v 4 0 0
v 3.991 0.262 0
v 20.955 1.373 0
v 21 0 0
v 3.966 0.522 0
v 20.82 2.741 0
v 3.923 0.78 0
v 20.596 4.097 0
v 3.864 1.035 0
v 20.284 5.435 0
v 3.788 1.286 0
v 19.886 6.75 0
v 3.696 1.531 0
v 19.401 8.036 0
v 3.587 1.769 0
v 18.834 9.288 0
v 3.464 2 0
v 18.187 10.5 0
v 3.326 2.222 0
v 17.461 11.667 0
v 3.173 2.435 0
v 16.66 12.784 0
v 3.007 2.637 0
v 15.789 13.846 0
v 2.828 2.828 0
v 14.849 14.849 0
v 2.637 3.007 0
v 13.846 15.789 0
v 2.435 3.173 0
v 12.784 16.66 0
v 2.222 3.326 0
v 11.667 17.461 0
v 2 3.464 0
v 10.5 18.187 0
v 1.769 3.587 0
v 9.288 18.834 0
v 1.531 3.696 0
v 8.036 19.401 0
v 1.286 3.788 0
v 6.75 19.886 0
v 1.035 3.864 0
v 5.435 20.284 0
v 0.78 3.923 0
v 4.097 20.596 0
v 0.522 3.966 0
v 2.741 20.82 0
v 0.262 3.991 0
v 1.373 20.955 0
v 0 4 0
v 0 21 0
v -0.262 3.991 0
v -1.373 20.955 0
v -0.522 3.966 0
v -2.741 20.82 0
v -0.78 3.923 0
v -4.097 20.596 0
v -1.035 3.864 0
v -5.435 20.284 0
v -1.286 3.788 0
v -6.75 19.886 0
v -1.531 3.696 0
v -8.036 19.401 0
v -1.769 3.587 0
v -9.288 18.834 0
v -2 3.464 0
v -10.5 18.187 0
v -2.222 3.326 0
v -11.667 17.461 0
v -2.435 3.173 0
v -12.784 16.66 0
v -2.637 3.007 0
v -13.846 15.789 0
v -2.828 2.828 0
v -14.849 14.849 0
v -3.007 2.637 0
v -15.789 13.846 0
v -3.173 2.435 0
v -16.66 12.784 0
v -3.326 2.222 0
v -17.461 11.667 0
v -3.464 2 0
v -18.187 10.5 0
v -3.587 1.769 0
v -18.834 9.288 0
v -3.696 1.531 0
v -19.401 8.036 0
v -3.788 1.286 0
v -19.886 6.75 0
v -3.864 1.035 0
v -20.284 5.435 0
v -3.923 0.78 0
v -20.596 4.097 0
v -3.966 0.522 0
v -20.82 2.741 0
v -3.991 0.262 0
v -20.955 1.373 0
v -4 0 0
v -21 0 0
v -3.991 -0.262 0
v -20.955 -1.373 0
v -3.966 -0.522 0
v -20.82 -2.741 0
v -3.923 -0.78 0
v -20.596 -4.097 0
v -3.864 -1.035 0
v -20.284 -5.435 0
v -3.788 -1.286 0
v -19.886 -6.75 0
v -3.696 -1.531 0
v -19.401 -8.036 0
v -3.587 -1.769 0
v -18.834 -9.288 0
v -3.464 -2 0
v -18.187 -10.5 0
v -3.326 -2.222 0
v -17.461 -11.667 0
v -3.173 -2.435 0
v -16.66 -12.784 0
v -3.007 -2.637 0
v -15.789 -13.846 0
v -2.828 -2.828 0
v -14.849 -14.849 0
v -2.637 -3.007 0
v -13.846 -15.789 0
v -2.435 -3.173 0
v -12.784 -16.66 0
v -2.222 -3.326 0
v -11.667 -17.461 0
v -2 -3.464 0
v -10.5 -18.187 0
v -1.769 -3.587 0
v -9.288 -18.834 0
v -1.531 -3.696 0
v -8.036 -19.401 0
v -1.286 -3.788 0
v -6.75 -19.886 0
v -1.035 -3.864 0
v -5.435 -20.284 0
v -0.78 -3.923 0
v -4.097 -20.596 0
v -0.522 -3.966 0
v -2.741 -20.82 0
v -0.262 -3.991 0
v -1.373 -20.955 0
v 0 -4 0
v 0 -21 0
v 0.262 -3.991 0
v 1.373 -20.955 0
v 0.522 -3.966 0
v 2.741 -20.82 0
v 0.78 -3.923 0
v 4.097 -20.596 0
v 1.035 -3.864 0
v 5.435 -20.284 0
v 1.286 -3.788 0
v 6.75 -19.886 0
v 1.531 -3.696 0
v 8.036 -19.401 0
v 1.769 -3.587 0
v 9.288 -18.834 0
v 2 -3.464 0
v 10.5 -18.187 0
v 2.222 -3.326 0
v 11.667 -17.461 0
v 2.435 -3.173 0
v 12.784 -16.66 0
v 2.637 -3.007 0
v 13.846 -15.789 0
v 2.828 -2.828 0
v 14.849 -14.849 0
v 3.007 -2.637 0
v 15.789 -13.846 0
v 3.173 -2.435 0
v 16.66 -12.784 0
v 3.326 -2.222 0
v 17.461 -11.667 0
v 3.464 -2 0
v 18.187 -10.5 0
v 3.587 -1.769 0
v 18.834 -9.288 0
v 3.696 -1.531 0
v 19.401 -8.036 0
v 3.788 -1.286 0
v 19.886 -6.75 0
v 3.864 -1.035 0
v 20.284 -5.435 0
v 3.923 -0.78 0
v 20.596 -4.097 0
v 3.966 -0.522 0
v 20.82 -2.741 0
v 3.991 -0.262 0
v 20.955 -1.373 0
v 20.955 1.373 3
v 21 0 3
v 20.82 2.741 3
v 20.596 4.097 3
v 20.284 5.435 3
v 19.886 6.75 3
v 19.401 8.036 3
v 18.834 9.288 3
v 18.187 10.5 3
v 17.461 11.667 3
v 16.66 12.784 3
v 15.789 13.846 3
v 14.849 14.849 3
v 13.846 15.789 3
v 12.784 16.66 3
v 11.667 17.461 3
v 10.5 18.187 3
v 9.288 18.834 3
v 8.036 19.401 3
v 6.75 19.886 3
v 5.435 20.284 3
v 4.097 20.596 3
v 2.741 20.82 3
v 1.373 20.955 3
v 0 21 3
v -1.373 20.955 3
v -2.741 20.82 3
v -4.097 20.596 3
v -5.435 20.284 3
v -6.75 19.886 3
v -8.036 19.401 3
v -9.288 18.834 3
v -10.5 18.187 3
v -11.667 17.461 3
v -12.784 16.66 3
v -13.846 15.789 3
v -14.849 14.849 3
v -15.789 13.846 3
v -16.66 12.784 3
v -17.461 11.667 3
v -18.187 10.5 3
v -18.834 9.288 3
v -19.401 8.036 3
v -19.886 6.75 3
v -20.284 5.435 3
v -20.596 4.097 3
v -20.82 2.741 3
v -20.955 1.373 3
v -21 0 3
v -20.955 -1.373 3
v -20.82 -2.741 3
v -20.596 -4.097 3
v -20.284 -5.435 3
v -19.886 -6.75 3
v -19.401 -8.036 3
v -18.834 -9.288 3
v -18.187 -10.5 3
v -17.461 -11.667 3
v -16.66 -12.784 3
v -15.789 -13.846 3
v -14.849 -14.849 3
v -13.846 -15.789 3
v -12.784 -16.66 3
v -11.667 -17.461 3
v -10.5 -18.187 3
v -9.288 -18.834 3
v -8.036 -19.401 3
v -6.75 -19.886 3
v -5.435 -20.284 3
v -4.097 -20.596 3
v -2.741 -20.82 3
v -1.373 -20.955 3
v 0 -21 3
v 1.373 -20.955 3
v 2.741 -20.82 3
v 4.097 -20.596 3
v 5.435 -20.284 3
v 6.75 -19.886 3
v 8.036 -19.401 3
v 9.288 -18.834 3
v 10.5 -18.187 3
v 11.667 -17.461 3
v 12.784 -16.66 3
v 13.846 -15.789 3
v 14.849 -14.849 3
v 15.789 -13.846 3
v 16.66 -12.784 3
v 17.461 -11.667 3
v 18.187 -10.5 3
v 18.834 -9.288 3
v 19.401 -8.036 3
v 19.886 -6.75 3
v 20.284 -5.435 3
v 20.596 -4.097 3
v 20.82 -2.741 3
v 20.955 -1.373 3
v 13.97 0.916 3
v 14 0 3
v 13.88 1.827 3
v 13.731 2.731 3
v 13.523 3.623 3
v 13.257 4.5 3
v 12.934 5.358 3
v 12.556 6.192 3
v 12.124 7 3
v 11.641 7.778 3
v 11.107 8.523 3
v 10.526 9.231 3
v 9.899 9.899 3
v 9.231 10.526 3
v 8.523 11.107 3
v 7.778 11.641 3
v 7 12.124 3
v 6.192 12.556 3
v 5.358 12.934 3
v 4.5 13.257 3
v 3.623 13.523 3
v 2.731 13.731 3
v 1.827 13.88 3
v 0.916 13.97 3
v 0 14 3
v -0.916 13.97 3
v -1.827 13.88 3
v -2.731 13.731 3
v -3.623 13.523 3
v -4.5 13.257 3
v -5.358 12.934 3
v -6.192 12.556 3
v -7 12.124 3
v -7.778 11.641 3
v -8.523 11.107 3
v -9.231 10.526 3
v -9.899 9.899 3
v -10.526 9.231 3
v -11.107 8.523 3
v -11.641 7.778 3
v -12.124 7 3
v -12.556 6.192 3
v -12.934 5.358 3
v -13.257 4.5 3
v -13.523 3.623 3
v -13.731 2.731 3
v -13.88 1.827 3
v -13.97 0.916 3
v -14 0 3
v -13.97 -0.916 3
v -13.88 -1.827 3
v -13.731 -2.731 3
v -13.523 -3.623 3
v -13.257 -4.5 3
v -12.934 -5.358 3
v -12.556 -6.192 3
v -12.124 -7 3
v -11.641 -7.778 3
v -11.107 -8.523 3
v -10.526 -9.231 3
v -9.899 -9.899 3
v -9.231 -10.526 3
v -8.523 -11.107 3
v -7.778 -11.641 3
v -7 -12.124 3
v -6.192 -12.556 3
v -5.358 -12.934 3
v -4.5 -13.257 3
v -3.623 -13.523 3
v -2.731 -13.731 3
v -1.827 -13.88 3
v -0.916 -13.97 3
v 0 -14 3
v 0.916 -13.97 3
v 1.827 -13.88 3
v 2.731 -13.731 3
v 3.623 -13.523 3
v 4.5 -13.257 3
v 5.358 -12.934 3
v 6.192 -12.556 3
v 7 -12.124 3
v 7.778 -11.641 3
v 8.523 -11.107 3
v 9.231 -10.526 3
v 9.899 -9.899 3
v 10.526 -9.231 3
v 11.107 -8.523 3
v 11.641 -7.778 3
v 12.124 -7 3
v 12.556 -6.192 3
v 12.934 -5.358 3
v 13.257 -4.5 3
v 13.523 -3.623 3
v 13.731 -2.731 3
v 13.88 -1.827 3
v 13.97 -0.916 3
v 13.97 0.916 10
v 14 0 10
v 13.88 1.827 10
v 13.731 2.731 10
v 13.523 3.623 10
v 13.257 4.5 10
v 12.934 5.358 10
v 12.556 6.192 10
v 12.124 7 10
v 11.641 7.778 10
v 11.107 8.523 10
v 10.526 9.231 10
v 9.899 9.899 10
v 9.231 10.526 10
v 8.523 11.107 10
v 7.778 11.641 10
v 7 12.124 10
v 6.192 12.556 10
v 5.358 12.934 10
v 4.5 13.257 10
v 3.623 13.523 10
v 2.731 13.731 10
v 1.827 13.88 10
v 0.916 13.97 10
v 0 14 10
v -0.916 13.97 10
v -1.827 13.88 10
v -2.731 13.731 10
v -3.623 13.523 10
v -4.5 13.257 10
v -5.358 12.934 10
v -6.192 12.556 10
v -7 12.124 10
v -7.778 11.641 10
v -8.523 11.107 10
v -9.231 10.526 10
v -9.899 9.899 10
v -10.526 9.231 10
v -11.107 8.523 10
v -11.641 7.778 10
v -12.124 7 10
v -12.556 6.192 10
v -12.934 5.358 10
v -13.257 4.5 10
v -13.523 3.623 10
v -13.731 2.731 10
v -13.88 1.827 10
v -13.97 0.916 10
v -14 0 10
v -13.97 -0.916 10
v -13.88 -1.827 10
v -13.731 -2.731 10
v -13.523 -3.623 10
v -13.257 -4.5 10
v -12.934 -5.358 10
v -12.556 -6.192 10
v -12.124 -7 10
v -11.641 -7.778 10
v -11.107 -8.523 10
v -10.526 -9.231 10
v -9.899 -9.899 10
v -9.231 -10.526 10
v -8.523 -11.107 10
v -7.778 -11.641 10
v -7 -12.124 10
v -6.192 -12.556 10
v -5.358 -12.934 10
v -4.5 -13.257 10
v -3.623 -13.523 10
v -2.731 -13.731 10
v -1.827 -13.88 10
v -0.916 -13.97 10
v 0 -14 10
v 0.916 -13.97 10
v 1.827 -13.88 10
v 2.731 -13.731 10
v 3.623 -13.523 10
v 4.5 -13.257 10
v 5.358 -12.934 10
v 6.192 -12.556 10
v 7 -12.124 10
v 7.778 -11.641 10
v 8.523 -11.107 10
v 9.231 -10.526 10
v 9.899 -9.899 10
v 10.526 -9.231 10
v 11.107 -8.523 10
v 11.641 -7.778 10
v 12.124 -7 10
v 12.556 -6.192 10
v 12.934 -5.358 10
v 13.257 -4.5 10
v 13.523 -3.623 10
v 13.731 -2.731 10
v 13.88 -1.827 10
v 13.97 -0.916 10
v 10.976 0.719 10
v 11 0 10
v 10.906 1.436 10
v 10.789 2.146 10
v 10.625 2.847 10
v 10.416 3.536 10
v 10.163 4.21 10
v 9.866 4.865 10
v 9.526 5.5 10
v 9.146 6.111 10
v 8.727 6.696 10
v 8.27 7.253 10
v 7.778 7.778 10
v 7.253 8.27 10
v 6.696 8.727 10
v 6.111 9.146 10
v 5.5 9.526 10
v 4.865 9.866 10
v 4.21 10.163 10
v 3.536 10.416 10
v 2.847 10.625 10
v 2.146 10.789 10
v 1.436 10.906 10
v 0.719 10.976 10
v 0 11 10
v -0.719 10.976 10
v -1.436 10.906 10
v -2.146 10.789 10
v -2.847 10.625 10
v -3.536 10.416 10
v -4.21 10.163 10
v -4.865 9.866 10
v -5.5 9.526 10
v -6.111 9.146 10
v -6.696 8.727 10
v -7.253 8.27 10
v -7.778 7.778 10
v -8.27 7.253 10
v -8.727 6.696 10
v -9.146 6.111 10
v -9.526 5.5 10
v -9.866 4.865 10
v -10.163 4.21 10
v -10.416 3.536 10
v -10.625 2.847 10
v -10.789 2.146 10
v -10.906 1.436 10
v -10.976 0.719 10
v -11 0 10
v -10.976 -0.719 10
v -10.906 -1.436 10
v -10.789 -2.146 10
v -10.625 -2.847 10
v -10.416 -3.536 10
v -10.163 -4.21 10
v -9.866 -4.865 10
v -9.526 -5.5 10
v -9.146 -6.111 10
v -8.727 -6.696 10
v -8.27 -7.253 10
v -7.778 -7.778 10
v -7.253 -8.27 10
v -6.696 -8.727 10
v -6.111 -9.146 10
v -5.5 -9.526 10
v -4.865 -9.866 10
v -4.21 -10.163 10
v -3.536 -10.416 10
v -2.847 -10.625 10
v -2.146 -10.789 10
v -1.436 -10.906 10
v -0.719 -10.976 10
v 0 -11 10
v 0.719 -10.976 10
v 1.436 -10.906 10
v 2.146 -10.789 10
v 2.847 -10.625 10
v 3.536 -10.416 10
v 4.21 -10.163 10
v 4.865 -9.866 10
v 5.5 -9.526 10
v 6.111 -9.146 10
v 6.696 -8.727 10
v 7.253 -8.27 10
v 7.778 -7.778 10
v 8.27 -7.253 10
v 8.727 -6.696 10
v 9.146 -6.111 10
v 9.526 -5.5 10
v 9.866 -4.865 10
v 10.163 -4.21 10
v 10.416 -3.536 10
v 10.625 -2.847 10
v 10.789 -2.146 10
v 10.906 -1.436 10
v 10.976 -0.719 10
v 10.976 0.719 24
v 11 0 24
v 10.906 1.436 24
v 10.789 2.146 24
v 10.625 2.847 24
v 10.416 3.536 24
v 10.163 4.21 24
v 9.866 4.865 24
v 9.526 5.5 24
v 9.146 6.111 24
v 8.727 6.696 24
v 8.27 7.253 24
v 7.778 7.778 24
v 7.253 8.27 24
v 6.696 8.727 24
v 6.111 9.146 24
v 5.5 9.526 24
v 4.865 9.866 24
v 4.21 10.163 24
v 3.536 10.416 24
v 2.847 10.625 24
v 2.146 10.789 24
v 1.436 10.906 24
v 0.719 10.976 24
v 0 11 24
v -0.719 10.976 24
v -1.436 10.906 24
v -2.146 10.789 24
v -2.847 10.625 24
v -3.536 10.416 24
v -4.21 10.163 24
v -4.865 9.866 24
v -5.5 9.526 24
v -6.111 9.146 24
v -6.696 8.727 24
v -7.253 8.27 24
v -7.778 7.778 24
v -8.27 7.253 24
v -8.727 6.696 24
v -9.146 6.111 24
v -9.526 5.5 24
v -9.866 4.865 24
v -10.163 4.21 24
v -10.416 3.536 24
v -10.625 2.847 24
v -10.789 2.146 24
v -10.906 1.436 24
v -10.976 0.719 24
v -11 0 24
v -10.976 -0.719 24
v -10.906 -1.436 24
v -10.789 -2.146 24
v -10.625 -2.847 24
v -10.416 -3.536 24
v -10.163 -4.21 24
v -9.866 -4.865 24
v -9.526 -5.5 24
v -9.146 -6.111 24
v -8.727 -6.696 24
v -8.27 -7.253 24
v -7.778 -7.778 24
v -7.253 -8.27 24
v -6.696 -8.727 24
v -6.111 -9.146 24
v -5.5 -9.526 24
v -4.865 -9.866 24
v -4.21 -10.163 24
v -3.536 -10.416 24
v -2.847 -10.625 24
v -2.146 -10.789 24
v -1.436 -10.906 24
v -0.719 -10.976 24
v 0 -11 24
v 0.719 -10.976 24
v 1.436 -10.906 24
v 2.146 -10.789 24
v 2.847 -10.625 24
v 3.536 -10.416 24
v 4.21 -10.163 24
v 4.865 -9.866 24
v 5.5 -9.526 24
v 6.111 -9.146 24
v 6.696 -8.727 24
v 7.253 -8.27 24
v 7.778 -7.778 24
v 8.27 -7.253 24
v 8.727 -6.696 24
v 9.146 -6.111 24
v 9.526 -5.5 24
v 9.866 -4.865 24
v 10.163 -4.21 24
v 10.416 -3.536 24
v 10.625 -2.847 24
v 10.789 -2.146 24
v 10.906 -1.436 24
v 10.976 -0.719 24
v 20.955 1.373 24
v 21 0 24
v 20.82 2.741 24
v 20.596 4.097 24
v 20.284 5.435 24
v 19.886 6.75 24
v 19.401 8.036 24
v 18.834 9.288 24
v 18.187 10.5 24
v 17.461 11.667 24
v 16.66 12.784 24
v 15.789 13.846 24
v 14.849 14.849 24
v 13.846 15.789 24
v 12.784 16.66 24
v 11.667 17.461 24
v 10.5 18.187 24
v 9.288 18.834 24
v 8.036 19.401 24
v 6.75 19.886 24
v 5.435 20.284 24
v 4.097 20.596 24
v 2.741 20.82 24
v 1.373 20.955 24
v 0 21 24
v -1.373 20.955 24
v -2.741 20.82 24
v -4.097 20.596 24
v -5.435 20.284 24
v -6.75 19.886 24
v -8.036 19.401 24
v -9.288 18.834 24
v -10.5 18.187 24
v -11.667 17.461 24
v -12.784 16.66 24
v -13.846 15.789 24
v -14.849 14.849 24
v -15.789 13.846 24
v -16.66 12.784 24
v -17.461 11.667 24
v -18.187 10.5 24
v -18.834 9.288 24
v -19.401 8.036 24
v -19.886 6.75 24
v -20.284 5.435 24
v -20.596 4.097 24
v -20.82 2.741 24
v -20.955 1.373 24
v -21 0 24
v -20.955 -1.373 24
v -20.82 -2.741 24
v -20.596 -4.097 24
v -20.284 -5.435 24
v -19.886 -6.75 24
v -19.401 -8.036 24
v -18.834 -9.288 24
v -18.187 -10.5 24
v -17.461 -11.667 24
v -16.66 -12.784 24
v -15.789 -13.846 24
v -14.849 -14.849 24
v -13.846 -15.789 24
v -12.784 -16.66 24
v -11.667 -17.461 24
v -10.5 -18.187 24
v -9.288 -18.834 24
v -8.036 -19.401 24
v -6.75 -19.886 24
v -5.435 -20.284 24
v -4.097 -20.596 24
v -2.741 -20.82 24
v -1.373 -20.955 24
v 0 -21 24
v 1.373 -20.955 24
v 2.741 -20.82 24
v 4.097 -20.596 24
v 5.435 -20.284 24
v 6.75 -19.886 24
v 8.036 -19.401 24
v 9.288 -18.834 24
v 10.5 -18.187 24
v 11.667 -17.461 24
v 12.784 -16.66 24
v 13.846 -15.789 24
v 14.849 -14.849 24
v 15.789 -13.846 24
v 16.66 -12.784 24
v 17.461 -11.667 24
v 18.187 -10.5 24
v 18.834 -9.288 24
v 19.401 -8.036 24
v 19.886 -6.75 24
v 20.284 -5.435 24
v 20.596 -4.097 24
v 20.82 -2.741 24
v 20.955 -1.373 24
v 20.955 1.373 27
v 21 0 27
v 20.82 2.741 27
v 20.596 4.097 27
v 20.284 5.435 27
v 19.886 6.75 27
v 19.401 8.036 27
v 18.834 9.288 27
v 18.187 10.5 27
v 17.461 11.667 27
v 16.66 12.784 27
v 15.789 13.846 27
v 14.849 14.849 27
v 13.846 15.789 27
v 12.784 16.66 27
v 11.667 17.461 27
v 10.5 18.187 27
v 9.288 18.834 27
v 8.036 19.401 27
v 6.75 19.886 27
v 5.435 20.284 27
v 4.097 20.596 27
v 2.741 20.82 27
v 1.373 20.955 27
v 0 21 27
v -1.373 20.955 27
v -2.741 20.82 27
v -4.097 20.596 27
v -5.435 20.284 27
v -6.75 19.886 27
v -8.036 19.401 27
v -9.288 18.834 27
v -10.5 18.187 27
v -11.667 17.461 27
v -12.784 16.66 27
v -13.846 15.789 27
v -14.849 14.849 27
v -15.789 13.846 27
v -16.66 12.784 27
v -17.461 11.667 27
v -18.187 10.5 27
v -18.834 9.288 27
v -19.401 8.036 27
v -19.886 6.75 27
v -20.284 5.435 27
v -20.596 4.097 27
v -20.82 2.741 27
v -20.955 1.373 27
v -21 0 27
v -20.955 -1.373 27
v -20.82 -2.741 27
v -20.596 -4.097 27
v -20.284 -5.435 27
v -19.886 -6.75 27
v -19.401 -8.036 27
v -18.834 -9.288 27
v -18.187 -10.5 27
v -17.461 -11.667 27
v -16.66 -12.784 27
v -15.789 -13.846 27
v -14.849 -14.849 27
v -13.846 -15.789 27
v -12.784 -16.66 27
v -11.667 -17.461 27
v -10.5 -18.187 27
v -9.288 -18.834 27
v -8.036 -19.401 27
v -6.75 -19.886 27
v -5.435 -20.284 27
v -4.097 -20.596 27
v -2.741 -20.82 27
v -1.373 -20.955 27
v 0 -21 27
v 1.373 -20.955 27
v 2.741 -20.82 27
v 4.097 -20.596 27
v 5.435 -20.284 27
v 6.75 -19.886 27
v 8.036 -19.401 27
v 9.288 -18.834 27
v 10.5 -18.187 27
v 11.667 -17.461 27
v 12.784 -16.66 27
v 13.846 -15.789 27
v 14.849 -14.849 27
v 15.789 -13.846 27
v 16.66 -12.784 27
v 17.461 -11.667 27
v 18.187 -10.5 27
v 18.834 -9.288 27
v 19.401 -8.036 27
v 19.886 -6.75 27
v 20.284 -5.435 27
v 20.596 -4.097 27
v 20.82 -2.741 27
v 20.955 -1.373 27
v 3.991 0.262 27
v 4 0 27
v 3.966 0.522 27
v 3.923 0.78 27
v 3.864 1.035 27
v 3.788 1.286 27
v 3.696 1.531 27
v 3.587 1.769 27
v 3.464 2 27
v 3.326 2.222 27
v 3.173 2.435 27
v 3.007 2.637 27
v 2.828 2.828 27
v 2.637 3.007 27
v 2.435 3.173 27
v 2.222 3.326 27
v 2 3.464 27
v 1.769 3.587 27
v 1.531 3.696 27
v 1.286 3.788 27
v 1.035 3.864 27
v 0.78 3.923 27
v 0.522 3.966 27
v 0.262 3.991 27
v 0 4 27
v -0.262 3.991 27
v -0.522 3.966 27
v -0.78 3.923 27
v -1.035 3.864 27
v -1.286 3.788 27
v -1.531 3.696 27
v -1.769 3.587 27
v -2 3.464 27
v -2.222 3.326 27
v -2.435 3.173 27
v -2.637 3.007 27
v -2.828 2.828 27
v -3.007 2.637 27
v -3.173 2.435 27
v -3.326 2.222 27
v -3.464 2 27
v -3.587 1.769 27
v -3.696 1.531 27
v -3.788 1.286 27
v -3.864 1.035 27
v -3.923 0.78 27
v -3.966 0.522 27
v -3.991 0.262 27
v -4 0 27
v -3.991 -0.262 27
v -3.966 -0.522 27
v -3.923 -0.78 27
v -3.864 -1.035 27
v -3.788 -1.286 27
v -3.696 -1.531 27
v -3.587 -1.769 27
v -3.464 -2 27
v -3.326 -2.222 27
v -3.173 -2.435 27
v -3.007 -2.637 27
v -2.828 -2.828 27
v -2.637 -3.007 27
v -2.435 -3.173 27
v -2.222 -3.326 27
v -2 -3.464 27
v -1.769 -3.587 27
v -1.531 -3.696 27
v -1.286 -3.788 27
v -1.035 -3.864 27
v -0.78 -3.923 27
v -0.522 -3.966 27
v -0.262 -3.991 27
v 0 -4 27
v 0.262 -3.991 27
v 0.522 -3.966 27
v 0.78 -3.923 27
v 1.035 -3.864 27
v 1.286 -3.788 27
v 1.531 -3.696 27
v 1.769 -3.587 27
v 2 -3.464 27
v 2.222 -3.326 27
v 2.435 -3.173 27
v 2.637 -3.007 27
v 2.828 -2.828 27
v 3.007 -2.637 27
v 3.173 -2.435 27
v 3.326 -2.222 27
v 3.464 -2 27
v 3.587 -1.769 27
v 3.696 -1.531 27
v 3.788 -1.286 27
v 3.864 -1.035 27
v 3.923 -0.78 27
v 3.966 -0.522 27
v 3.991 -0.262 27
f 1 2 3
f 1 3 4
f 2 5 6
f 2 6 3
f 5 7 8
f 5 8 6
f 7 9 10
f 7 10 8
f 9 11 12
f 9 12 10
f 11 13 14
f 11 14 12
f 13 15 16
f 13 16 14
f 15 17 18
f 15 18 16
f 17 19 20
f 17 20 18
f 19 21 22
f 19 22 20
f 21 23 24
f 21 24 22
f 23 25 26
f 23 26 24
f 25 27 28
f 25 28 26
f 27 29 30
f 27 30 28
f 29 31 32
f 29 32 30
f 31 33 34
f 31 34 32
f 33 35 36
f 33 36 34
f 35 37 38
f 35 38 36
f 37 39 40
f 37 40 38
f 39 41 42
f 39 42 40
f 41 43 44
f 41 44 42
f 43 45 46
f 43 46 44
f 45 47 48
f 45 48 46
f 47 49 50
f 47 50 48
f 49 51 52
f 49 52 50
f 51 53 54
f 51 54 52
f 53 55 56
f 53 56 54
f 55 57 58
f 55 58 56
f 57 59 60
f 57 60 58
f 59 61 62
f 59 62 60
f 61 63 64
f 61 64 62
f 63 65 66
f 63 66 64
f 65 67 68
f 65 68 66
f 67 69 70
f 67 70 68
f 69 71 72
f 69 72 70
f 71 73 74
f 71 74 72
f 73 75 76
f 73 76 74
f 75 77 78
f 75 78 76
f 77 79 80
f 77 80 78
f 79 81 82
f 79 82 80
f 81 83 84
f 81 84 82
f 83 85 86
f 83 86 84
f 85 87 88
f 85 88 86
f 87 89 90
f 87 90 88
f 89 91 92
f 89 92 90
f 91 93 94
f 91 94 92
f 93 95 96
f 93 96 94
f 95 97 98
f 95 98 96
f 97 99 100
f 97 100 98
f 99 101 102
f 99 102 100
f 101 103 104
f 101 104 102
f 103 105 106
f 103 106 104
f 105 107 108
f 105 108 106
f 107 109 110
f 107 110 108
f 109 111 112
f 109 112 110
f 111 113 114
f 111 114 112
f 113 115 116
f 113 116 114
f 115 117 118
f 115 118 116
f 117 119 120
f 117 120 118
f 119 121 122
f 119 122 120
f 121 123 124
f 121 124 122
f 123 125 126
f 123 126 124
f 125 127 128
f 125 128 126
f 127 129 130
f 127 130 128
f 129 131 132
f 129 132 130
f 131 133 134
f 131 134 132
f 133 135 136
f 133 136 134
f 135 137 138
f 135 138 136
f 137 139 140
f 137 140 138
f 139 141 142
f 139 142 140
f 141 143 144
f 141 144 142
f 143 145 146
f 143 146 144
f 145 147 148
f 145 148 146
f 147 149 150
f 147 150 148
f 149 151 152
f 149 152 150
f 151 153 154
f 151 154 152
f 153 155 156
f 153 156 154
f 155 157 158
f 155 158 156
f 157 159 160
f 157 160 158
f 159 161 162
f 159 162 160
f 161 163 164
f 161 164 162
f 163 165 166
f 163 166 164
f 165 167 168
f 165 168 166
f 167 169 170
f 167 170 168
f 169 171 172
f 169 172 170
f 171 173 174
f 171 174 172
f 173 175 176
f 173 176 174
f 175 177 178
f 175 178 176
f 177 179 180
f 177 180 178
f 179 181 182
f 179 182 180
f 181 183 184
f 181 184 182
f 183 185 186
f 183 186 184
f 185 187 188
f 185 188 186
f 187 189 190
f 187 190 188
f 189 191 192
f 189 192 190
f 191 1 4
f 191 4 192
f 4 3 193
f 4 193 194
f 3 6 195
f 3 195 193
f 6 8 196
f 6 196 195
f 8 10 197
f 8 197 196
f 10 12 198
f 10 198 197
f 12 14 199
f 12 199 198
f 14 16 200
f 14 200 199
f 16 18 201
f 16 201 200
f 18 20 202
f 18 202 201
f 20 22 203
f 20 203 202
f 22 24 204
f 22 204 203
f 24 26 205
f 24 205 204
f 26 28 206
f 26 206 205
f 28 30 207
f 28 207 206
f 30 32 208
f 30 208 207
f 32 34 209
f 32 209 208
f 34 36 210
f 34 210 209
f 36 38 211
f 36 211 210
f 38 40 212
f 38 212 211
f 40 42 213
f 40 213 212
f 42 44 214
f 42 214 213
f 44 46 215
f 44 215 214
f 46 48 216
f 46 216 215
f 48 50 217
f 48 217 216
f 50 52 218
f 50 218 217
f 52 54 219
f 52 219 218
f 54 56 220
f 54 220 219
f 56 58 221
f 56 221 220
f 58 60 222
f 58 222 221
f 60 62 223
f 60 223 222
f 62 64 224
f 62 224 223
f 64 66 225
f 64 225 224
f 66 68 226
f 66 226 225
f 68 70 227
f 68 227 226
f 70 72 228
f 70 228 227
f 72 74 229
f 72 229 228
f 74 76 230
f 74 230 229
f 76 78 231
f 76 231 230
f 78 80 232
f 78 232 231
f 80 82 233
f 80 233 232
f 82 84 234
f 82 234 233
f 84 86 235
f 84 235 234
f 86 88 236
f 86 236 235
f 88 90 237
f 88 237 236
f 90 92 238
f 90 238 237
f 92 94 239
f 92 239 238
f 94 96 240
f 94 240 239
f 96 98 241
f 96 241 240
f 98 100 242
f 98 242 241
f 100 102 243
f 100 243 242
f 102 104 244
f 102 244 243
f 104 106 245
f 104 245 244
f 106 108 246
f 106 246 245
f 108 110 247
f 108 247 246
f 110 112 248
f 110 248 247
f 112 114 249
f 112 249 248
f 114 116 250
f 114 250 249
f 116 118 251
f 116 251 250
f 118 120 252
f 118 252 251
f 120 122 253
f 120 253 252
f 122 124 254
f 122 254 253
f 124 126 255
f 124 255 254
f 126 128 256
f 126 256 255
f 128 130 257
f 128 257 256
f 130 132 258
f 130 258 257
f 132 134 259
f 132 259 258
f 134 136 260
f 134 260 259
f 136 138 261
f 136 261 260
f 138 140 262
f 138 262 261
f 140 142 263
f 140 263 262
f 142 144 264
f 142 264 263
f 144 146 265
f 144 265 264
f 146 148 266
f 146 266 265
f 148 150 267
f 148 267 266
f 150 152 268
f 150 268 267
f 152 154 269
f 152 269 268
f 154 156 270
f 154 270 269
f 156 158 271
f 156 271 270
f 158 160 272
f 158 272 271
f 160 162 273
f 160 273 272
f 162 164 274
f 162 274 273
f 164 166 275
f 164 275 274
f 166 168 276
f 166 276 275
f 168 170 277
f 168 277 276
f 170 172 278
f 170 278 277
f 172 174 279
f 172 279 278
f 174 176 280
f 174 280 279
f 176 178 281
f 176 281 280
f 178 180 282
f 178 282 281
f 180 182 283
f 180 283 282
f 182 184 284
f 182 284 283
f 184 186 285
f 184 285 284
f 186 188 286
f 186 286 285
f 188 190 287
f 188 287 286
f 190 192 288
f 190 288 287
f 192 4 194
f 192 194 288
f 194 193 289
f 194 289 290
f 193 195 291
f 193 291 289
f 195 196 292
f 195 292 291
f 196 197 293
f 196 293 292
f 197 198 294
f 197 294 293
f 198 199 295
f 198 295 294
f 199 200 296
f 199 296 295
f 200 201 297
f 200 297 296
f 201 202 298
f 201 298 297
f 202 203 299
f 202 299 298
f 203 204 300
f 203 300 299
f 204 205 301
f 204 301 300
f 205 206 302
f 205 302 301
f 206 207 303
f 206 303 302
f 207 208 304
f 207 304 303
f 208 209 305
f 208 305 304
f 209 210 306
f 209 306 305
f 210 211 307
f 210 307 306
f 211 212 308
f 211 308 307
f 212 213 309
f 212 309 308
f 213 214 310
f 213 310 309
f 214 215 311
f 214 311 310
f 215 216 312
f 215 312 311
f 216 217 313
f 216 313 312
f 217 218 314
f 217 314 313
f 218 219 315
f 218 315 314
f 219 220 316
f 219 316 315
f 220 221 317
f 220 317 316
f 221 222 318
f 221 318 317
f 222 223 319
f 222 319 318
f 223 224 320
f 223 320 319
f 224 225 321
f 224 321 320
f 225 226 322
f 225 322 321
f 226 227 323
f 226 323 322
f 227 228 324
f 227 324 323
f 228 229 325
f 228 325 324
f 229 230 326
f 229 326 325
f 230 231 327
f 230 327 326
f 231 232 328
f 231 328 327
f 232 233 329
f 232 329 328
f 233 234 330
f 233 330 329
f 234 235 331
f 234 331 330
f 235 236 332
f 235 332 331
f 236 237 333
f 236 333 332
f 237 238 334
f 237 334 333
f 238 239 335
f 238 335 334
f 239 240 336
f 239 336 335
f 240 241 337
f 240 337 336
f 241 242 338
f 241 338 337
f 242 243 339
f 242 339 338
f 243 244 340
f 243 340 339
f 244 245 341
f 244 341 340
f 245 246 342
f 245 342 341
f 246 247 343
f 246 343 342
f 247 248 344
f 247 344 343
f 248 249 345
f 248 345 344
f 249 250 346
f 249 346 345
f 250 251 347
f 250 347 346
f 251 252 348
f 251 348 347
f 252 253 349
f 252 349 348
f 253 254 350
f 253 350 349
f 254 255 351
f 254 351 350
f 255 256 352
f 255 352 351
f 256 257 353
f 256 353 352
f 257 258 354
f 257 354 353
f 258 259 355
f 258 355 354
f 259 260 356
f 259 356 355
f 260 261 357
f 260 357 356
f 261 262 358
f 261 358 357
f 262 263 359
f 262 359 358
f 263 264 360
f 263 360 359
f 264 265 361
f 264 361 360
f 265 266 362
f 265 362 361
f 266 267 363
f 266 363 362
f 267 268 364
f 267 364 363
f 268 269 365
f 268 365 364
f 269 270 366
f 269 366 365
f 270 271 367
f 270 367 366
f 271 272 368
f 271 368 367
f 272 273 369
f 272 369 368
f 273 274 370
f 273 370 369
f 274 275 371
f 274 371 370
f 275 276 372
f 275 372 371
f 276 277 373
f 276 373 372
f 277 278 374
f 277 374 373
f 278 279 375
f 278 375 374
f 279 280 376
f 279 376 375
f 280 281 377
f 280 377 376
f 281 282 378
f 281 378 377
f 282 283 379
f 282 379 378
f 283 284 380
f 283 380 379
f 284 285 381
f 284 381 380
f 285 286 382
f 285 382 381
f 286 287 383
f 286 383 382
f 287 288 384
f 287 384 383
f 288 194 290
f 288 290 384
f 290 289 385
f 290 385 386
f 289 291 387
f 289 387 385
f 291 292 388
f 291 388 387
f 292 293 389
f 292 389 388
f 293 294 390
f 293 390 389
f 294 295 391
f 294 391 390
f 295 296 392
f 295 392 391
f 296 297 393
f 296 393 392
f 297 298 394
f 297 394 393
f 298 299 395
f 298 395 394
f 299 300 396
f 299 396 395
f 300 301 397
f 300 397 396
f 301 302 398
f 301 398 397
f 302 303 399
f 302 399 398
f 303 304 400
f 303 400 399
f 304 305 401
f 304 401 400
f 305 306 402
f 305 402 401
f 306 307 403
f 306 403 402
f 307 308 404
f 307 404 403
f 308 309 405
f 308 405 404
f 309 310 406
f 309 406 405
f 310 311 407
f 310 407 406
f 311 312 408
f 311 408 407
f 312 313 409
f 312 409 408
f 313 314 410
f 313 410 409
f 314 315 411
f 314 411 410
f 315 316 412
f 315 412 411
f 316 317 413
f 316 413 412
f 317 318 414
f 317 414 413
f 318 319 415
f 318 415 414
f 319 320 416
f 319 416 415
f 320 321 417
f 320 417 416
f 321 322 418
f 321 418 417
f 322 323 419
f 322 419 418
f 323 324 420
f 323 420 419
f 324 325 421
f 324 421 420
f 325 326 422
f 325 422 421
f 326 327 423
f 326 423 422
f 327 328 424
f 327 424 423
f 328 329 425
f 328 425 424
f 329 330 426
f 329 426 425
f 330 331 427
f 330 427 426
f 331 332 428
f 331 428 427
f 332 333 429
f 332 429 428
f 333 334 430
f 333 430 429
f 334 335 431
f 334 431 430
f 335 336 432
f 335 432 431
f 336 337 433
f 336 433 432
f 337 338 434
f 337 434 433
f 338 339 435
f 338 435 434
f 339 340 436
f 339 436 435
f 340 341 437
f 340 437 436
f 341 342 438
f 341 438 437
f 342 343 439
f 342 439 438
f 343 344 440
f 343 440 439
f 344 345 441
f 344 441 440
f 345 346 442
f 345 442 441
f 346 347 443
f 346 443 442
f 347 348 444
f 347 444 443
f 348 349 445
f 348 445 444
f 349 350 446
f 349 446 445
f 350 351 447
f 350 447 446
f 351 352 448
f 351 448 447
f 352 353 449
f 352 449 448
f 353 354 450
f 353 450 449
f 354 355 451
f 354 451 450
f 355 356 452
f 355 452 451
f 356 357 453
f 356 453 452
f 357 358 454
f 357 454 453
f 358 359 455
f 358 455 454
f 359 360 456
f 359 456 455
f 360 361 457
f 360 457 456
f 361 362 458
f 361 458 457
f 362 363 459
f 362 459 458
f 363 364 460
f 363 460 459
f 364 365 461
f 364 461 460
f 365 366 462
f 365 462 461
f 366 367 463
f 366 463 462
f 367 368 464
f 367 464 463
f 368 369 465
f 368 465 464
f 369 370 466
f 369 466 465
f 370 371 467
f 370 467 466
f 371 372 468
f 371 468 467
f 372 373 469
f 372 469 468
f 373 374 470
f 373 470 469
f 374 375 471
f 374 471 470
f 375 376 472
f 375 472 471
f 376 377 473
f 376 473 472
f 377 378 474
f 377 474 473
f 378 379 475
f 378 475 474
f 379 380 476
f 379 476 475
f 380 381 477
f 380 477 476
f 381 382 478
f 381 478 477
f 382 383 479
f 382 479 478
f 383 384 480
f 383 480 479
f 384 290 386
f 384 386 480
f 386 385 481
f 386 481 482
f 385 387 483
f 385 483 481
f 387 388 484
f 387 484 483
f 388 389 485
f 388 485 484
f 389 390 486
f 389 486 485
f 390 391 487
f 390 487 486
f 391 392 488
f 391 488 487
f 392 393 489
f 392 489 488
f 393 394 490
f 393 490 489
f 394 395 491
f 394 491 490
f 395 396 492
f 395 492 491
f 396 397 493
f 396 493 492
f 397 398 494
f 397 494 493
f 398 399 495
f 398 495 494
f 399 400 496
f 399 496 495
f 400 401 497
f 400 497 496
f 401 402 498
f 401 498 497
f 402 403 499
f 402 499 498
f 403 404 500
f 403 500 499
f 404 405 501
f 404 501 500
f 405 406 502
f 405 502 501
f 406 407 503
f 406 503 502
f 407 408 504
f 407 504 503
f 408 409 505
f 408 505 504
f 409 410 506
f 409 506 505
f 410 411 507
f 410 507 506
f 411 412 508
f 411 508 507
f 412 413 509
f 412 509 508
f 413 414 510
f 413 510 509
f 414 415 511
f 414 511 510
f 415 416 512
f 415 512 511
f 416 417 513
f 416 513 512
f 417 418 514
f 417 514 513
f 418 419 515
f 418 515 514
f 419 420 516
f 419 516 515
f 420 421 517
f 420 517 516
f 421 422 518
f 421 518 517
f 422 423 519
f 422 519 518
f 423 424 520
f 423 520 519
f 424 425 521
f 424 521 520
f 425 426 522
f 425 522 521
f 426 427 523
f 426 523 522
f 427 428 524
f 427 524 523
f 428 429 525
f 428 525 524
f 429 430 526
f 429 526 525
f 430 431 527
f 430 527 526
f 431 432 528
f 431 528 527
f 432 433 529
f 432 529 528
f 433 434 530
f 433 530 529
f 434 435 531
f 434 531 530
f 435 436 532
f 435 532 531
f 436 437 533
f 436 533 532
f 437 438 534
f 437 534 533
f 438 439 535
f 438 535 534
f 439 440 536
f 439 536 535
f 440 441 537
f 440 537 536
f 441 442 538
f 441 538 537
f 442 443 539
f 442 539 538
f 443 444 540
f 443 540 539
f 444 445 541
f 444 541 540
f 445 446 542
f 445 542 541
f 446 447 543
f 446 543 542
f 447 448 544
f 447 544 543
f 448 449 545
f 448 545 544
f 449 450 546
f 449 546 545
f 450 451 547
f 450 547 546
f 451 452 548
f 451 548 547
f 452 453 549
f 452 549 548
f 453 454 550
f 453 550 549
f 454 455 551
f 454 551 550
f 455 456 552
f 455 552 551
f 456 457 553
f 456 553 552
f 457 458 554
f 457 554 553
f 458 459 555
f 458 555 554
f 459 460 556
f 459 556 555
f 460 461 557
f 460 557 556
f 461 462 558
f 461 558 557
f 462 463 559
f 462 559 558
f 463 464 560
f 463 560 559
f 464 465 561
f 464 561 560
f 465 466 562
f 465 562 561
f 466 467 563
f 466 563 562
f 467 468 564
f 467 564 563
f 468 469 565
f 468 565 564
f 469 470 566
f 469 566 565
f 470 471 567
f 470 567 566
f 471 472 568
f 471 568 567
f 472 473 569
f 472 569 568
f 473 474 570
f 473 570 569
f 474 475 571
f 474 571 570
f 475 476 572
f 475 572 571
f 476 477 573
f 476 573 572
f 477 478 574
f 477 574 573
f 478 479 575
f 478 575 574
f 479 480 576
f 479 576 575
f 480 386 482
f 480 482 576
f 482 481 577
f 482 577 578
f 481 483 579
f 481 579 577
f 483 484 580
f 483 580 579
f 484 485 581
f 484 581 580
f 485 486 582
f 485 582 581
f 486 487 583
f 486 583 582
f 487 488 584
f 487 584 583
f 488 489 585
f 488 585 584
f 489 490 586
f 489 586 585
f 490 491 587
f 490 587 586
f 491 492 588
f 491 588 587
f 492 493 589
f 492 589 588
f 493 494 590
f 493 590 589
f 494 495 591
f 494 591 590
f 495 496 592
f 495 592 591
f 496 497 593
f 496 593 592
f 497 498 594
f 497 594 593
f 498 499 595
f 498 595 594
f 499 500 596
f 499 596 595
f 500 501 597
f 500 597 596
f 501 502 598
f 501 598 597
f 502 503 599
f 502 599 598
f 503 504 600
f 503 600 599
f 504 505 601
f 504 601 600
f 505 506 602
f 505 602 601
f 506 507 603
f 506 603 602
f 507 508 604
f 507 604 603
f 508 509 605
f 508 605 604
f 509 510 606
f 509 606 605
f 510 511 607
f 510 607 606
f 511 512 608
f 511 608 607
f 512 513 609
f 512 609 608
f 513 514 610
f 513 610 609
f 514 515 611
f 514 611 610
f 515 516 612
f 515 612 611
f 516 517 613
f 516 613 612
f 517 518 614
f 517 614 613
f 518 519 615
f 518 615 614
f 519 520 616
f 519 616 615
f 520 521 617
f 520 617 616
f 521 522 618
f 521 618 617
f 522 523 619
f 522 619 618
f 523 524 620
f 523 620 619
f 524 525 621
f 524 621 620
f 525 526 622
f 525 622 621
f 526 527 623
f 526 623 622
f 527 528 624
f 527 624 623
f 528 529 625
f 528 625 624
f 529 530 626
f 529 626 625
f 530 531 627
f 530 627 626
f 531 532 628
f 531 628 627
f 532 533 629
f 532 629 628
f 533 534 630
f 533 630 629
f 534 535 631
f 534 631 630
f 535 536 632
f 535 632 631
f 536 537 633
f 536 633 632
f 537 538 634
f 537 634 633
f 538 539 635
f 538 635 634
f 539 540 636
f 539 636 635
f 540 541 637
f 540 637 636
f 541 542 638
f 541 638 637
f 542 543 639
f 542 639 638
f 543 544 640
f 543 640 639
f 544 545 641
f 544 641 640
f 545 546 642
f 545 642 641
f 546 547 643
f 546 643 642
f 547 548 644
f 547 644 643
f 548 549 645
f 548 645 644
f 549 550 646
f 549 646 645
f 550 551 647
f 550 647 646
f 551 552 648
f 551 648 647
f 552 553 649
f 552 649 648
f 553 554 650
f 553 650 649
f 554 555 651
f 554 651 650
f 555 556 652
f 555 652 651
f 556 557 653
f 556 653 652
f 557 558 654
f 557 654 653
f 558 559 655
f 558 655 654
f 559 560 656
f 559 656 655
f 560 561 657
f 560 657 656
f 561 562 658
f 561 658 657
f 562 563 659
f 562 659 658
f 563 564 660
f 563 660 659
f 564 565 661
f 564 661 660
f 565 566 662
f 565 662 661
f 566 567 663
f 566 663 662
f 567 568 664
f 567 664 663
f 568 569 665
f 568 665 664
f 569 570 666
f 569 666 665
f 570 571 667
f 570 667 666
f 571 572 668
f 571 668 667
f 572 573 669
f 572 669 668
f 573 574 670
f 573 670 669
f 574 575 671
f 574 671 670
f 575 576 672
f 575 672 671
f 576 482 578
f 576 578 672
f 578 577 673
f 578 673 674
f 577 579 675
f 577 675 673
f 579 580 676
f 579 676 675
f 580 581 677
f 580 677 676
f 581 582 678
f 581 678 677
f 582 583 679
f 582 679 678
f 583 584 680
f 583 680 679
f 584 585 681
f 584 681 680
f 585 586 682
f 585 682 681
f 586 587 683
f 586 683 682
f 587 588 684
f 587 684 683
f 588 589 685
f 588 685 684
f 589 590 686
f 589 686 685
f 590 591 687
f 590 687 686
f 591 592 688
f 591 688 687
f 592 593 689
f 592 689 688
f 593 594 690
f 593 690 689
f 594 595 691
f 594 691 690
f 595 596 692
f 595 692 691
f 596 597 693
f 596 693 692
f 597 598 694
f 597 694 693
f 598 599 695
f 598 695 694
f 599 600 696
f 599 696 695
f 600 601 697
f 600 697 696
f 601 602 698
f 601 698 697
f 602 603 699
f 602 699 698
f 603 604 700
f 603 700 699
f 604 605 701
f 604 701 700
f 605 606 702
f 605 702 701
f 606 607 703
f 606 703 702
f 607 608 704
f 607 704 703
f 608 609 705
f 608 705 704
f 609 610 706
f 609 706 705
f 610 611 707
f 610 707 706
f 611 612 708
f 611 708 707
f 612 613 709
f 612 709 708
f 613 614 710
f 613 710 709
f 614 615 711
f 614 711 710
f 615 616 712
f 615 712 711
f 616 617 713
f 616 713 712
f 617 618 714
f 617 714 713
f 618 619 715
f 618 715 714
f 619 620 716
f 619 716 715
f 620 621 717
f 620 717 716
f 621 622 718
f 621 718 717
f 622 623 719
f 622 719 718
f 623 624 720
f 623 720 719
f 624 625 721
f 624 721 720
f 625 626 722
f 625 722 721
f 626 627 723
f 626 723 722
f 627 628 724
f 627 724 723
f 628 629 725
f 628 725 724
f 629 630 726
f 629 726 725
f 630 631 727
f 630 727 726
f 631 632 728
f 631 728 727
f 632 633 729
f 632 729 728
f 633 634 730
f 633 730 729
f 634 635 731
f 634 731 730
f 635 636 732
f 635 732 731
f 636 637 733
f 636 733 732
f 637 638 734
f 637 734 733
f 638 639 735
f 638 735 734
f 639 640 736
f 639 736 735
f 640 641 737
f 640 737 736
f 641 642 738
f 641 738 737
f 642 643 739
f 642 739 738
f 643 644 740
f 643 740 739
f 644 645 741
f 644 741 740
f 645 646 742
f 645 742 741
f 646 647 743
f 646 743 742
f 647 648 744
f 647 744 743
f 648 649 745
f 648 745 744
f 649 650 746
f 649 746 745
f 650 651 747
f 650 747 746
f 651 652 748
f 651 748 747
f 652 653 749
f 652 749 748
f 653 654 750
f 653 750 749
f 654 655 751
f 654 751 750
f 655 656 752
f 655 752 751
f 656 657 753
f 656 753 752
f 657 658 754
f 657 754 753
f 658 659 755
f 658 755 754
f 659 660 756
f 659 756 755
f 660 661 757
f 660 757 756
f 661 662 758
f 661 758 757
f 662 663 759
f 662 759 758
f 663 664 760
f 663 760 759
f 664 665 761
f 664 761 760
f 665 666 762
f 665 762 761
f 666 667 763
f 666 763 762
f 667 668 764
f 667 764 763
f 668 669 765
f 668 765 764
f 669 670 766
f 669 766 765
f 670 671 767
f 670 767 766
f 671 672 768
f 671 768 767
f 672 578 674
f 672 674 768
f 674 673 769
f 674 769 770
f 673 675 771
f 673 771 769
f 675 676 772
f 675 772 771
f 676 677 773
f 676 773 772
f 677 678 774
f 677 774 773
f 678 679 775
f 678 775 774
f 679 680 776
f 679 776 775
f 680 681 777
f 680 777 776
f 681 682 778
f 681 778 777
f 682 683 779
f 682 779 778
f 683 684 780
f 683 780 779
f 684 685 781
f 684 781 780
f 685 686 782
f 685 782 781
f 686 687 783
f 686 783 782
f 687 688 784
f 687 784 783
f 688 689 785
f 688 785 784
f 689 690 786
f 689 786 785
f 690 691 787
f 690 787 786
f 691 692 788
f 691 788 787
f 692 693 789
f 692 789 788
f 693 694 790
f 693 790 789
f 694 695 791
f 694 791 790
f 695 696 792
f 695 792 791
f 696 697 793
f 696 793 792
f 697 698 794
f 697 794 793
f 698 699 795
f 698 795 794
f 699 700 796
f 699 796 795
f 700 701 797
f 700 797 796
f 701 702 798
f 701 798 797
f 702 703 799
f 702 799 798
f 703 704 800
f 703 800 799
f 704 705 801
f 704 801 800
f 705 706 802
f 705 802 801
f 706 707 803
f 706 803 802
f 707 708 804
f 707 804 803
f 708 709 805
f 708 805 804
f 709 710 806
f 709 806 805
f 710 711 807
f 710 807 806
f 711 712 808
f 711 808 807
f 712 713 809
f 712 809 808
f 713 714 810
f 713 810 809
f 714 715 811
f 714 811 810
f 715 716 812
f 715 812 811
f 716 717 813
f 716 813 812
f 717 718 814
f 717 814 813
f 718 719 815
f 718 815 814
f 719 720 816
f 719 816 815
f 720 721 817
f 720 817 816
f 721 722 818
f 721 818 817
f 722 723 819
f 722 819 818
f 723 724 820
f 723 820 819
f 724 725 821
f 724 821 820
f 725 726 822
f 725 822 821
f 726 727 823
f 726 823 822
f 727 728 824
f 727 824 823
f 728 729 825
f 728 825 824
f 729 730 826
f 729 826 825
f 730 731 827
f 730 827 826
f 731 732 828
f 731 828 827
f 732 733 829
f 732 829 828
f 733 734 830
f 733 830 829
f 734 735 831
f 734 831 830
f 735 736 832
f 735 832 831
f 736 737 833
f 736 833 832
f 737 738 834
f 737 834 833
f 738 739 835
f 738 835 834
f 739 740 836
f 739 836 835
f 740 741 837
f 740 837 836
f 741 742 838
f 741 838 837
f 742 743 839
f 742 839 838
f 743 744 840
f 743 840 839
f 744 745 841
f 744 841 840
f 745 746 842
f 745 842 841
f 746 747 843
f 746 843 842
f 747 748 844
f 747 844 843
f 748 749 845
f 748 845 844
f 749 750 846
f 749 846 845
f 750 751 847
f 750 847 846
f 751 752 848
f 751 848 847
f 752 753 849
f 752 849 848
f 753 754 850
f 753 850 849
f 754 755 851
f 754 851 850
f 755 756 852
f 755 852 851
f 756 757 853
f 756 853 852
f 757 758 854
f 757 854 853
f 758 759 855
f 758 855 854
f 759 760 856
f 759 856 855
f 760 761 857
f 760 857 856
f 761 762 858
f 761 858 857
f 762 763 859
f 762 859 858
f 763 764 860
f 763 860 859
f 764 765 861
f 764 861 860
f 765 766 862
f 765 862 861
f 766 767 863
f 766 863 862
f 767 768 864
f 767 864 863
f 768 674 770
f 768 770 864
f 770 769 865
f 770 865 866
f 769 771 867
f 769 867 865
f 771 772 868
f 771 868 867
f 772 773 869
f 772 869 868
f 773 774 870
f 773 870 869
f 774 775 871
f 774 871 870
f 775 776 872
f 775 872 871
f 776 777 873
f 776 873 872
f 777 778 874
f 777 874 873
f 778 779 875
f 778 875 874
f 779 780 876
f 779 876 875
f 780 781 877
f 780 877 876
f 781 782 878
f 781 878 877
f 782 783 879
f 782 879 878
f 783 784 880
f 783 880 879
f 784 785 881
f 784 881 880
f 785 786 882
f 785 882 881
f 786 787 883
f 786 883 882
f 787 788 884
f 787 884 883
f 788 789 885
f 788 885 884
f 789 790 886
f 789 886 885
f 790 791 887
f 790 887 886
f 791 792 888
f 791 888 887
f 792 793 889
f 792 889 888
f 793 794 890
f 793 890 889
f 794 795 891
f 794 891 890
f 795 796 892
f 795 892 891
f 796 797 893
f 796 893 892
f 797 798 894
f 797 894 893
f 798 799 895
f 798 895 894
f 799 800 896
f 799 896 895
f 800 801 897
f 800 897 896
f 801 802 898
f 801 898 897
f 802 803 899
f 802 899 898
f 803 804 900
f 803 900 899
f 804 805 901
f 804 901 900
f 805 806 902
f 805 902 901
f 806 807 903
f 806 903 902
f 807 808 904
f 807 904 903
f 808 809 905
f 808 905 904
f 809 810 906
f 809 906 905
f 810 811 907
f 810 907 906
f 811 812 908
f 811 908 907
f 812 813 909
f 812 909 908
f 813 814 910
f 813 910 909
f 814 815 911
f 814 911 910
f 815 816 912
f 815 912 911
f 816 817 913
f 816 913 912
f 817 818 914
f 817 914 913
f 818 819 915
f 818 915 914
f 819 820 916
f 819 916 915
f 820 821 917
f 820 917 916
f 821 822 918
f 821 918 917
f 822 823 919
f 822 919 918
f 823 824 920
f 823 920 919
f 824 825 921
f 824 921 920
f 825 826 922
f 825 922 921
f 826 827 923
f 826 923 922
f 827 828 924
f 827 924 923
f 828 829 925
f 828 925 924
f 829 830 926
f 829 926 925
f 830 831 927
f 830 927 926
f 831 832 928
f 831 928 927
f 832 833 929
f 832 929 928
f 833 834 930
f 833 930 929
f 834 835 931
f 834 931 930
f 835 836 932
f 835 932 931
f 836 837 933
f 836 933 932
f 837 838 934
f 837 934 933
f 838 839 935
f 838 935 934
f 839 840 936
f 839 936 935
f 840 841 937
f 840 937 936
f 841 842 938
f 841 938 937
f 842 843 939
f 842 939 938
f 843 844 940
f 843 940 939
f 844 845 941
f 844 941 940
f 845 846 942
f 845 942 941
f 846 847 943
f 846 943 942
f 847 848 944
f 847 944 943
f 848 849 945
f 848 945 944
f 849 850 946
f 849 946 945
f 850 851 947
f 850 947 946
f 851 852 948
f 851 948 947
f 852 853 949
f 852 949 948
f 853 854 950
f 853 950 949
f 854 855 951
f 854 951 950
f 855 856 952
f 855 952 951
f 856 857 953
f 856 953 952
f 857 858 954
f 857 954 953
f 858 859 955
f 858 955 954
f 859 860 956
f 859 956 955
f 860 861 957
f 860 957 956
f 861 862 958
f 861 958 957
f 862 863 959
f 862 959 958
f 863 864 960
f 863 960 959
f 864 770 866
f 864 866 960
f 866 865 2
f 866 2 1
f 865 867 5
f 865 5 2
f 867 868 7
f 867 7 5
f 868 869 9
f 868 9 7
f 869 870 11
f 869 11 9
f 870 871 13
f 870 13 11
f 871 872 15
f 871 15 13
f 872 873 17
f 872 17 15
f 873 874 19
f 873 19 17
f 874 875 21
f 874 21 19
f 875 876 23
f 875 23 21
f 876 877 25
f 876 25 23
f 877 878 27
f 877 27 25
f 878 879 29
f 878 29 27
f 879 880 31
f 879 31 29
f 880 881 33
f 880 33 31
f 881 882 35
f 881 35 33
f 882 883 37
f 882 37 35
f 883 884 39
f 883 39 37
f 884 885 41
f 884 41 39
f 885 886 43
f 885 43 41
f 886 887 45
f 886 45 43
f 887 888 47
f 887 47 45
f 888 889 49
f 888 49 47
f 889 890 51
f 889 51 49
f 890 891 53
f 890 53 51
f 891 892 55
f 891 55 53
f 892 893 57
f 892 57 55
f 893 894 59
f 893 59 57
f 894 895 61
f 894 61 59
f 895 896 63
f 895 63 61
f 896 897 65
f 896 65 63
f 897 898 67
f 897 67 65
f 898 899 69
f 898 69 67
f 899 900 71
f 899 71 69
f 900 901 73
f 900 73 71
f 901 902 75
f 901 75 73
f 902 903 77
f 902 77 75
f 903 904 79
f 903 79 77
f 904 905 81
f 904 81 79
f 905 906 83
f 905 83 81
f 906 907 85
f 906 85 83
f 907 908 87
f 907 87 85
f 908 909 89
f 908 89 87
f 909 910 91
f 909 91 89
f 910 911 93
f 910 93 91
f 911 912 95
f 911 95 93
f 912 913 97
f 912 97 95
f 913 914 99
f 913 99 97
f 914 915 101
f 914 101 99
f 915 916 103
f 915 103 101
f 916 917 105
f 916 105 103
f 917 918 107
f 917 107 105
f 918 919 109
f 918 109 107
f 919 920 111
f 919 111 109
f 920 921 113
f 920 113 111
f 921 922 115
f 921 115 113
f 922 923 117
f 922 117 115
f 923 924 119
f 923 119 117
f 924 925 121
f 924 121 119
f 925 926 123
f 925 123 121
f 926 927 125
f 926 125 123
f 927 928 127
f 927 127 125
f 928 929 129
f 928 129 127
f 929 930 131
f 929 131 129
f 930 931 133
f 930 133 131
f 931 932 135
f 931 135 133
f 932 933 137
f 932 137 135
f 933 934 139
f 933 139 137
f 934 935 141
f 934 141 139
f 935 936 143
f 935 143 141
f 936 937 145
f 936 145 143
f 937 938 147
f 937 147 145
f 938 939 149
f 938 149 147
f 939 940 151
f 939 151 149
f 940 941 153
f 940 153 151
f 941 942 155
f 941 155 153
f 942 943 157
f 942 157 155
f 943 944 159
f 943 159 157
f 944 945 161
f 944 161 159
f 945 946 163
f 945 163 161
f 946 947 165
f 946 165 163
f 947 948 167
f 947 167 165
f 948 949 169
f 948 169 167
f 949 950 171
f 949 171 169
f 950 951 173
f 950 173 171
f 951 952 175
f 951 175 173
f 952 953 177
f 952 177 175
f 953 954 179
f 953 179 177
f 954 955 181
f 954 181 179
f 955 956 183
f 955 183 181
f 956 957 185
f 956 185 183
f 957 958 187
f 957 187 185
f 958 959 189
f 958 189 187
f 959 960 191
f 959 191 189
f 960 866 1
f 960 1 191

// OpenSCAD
// Original MechIntel educational model. CC0-1.0. Units: mm.
// Not a standardized or load-rated component.
$fn=96;
// Section points: [radius, height], mm. Edit to change the profile.
section=[[4, 0], [21, 0], [21, 3], [14, 3], [14, 10], [11, 10], [11, 24], [21, 24], [21, 27], [4, 27]];
rotate_extrude($fn=96) polygon(points=section);
